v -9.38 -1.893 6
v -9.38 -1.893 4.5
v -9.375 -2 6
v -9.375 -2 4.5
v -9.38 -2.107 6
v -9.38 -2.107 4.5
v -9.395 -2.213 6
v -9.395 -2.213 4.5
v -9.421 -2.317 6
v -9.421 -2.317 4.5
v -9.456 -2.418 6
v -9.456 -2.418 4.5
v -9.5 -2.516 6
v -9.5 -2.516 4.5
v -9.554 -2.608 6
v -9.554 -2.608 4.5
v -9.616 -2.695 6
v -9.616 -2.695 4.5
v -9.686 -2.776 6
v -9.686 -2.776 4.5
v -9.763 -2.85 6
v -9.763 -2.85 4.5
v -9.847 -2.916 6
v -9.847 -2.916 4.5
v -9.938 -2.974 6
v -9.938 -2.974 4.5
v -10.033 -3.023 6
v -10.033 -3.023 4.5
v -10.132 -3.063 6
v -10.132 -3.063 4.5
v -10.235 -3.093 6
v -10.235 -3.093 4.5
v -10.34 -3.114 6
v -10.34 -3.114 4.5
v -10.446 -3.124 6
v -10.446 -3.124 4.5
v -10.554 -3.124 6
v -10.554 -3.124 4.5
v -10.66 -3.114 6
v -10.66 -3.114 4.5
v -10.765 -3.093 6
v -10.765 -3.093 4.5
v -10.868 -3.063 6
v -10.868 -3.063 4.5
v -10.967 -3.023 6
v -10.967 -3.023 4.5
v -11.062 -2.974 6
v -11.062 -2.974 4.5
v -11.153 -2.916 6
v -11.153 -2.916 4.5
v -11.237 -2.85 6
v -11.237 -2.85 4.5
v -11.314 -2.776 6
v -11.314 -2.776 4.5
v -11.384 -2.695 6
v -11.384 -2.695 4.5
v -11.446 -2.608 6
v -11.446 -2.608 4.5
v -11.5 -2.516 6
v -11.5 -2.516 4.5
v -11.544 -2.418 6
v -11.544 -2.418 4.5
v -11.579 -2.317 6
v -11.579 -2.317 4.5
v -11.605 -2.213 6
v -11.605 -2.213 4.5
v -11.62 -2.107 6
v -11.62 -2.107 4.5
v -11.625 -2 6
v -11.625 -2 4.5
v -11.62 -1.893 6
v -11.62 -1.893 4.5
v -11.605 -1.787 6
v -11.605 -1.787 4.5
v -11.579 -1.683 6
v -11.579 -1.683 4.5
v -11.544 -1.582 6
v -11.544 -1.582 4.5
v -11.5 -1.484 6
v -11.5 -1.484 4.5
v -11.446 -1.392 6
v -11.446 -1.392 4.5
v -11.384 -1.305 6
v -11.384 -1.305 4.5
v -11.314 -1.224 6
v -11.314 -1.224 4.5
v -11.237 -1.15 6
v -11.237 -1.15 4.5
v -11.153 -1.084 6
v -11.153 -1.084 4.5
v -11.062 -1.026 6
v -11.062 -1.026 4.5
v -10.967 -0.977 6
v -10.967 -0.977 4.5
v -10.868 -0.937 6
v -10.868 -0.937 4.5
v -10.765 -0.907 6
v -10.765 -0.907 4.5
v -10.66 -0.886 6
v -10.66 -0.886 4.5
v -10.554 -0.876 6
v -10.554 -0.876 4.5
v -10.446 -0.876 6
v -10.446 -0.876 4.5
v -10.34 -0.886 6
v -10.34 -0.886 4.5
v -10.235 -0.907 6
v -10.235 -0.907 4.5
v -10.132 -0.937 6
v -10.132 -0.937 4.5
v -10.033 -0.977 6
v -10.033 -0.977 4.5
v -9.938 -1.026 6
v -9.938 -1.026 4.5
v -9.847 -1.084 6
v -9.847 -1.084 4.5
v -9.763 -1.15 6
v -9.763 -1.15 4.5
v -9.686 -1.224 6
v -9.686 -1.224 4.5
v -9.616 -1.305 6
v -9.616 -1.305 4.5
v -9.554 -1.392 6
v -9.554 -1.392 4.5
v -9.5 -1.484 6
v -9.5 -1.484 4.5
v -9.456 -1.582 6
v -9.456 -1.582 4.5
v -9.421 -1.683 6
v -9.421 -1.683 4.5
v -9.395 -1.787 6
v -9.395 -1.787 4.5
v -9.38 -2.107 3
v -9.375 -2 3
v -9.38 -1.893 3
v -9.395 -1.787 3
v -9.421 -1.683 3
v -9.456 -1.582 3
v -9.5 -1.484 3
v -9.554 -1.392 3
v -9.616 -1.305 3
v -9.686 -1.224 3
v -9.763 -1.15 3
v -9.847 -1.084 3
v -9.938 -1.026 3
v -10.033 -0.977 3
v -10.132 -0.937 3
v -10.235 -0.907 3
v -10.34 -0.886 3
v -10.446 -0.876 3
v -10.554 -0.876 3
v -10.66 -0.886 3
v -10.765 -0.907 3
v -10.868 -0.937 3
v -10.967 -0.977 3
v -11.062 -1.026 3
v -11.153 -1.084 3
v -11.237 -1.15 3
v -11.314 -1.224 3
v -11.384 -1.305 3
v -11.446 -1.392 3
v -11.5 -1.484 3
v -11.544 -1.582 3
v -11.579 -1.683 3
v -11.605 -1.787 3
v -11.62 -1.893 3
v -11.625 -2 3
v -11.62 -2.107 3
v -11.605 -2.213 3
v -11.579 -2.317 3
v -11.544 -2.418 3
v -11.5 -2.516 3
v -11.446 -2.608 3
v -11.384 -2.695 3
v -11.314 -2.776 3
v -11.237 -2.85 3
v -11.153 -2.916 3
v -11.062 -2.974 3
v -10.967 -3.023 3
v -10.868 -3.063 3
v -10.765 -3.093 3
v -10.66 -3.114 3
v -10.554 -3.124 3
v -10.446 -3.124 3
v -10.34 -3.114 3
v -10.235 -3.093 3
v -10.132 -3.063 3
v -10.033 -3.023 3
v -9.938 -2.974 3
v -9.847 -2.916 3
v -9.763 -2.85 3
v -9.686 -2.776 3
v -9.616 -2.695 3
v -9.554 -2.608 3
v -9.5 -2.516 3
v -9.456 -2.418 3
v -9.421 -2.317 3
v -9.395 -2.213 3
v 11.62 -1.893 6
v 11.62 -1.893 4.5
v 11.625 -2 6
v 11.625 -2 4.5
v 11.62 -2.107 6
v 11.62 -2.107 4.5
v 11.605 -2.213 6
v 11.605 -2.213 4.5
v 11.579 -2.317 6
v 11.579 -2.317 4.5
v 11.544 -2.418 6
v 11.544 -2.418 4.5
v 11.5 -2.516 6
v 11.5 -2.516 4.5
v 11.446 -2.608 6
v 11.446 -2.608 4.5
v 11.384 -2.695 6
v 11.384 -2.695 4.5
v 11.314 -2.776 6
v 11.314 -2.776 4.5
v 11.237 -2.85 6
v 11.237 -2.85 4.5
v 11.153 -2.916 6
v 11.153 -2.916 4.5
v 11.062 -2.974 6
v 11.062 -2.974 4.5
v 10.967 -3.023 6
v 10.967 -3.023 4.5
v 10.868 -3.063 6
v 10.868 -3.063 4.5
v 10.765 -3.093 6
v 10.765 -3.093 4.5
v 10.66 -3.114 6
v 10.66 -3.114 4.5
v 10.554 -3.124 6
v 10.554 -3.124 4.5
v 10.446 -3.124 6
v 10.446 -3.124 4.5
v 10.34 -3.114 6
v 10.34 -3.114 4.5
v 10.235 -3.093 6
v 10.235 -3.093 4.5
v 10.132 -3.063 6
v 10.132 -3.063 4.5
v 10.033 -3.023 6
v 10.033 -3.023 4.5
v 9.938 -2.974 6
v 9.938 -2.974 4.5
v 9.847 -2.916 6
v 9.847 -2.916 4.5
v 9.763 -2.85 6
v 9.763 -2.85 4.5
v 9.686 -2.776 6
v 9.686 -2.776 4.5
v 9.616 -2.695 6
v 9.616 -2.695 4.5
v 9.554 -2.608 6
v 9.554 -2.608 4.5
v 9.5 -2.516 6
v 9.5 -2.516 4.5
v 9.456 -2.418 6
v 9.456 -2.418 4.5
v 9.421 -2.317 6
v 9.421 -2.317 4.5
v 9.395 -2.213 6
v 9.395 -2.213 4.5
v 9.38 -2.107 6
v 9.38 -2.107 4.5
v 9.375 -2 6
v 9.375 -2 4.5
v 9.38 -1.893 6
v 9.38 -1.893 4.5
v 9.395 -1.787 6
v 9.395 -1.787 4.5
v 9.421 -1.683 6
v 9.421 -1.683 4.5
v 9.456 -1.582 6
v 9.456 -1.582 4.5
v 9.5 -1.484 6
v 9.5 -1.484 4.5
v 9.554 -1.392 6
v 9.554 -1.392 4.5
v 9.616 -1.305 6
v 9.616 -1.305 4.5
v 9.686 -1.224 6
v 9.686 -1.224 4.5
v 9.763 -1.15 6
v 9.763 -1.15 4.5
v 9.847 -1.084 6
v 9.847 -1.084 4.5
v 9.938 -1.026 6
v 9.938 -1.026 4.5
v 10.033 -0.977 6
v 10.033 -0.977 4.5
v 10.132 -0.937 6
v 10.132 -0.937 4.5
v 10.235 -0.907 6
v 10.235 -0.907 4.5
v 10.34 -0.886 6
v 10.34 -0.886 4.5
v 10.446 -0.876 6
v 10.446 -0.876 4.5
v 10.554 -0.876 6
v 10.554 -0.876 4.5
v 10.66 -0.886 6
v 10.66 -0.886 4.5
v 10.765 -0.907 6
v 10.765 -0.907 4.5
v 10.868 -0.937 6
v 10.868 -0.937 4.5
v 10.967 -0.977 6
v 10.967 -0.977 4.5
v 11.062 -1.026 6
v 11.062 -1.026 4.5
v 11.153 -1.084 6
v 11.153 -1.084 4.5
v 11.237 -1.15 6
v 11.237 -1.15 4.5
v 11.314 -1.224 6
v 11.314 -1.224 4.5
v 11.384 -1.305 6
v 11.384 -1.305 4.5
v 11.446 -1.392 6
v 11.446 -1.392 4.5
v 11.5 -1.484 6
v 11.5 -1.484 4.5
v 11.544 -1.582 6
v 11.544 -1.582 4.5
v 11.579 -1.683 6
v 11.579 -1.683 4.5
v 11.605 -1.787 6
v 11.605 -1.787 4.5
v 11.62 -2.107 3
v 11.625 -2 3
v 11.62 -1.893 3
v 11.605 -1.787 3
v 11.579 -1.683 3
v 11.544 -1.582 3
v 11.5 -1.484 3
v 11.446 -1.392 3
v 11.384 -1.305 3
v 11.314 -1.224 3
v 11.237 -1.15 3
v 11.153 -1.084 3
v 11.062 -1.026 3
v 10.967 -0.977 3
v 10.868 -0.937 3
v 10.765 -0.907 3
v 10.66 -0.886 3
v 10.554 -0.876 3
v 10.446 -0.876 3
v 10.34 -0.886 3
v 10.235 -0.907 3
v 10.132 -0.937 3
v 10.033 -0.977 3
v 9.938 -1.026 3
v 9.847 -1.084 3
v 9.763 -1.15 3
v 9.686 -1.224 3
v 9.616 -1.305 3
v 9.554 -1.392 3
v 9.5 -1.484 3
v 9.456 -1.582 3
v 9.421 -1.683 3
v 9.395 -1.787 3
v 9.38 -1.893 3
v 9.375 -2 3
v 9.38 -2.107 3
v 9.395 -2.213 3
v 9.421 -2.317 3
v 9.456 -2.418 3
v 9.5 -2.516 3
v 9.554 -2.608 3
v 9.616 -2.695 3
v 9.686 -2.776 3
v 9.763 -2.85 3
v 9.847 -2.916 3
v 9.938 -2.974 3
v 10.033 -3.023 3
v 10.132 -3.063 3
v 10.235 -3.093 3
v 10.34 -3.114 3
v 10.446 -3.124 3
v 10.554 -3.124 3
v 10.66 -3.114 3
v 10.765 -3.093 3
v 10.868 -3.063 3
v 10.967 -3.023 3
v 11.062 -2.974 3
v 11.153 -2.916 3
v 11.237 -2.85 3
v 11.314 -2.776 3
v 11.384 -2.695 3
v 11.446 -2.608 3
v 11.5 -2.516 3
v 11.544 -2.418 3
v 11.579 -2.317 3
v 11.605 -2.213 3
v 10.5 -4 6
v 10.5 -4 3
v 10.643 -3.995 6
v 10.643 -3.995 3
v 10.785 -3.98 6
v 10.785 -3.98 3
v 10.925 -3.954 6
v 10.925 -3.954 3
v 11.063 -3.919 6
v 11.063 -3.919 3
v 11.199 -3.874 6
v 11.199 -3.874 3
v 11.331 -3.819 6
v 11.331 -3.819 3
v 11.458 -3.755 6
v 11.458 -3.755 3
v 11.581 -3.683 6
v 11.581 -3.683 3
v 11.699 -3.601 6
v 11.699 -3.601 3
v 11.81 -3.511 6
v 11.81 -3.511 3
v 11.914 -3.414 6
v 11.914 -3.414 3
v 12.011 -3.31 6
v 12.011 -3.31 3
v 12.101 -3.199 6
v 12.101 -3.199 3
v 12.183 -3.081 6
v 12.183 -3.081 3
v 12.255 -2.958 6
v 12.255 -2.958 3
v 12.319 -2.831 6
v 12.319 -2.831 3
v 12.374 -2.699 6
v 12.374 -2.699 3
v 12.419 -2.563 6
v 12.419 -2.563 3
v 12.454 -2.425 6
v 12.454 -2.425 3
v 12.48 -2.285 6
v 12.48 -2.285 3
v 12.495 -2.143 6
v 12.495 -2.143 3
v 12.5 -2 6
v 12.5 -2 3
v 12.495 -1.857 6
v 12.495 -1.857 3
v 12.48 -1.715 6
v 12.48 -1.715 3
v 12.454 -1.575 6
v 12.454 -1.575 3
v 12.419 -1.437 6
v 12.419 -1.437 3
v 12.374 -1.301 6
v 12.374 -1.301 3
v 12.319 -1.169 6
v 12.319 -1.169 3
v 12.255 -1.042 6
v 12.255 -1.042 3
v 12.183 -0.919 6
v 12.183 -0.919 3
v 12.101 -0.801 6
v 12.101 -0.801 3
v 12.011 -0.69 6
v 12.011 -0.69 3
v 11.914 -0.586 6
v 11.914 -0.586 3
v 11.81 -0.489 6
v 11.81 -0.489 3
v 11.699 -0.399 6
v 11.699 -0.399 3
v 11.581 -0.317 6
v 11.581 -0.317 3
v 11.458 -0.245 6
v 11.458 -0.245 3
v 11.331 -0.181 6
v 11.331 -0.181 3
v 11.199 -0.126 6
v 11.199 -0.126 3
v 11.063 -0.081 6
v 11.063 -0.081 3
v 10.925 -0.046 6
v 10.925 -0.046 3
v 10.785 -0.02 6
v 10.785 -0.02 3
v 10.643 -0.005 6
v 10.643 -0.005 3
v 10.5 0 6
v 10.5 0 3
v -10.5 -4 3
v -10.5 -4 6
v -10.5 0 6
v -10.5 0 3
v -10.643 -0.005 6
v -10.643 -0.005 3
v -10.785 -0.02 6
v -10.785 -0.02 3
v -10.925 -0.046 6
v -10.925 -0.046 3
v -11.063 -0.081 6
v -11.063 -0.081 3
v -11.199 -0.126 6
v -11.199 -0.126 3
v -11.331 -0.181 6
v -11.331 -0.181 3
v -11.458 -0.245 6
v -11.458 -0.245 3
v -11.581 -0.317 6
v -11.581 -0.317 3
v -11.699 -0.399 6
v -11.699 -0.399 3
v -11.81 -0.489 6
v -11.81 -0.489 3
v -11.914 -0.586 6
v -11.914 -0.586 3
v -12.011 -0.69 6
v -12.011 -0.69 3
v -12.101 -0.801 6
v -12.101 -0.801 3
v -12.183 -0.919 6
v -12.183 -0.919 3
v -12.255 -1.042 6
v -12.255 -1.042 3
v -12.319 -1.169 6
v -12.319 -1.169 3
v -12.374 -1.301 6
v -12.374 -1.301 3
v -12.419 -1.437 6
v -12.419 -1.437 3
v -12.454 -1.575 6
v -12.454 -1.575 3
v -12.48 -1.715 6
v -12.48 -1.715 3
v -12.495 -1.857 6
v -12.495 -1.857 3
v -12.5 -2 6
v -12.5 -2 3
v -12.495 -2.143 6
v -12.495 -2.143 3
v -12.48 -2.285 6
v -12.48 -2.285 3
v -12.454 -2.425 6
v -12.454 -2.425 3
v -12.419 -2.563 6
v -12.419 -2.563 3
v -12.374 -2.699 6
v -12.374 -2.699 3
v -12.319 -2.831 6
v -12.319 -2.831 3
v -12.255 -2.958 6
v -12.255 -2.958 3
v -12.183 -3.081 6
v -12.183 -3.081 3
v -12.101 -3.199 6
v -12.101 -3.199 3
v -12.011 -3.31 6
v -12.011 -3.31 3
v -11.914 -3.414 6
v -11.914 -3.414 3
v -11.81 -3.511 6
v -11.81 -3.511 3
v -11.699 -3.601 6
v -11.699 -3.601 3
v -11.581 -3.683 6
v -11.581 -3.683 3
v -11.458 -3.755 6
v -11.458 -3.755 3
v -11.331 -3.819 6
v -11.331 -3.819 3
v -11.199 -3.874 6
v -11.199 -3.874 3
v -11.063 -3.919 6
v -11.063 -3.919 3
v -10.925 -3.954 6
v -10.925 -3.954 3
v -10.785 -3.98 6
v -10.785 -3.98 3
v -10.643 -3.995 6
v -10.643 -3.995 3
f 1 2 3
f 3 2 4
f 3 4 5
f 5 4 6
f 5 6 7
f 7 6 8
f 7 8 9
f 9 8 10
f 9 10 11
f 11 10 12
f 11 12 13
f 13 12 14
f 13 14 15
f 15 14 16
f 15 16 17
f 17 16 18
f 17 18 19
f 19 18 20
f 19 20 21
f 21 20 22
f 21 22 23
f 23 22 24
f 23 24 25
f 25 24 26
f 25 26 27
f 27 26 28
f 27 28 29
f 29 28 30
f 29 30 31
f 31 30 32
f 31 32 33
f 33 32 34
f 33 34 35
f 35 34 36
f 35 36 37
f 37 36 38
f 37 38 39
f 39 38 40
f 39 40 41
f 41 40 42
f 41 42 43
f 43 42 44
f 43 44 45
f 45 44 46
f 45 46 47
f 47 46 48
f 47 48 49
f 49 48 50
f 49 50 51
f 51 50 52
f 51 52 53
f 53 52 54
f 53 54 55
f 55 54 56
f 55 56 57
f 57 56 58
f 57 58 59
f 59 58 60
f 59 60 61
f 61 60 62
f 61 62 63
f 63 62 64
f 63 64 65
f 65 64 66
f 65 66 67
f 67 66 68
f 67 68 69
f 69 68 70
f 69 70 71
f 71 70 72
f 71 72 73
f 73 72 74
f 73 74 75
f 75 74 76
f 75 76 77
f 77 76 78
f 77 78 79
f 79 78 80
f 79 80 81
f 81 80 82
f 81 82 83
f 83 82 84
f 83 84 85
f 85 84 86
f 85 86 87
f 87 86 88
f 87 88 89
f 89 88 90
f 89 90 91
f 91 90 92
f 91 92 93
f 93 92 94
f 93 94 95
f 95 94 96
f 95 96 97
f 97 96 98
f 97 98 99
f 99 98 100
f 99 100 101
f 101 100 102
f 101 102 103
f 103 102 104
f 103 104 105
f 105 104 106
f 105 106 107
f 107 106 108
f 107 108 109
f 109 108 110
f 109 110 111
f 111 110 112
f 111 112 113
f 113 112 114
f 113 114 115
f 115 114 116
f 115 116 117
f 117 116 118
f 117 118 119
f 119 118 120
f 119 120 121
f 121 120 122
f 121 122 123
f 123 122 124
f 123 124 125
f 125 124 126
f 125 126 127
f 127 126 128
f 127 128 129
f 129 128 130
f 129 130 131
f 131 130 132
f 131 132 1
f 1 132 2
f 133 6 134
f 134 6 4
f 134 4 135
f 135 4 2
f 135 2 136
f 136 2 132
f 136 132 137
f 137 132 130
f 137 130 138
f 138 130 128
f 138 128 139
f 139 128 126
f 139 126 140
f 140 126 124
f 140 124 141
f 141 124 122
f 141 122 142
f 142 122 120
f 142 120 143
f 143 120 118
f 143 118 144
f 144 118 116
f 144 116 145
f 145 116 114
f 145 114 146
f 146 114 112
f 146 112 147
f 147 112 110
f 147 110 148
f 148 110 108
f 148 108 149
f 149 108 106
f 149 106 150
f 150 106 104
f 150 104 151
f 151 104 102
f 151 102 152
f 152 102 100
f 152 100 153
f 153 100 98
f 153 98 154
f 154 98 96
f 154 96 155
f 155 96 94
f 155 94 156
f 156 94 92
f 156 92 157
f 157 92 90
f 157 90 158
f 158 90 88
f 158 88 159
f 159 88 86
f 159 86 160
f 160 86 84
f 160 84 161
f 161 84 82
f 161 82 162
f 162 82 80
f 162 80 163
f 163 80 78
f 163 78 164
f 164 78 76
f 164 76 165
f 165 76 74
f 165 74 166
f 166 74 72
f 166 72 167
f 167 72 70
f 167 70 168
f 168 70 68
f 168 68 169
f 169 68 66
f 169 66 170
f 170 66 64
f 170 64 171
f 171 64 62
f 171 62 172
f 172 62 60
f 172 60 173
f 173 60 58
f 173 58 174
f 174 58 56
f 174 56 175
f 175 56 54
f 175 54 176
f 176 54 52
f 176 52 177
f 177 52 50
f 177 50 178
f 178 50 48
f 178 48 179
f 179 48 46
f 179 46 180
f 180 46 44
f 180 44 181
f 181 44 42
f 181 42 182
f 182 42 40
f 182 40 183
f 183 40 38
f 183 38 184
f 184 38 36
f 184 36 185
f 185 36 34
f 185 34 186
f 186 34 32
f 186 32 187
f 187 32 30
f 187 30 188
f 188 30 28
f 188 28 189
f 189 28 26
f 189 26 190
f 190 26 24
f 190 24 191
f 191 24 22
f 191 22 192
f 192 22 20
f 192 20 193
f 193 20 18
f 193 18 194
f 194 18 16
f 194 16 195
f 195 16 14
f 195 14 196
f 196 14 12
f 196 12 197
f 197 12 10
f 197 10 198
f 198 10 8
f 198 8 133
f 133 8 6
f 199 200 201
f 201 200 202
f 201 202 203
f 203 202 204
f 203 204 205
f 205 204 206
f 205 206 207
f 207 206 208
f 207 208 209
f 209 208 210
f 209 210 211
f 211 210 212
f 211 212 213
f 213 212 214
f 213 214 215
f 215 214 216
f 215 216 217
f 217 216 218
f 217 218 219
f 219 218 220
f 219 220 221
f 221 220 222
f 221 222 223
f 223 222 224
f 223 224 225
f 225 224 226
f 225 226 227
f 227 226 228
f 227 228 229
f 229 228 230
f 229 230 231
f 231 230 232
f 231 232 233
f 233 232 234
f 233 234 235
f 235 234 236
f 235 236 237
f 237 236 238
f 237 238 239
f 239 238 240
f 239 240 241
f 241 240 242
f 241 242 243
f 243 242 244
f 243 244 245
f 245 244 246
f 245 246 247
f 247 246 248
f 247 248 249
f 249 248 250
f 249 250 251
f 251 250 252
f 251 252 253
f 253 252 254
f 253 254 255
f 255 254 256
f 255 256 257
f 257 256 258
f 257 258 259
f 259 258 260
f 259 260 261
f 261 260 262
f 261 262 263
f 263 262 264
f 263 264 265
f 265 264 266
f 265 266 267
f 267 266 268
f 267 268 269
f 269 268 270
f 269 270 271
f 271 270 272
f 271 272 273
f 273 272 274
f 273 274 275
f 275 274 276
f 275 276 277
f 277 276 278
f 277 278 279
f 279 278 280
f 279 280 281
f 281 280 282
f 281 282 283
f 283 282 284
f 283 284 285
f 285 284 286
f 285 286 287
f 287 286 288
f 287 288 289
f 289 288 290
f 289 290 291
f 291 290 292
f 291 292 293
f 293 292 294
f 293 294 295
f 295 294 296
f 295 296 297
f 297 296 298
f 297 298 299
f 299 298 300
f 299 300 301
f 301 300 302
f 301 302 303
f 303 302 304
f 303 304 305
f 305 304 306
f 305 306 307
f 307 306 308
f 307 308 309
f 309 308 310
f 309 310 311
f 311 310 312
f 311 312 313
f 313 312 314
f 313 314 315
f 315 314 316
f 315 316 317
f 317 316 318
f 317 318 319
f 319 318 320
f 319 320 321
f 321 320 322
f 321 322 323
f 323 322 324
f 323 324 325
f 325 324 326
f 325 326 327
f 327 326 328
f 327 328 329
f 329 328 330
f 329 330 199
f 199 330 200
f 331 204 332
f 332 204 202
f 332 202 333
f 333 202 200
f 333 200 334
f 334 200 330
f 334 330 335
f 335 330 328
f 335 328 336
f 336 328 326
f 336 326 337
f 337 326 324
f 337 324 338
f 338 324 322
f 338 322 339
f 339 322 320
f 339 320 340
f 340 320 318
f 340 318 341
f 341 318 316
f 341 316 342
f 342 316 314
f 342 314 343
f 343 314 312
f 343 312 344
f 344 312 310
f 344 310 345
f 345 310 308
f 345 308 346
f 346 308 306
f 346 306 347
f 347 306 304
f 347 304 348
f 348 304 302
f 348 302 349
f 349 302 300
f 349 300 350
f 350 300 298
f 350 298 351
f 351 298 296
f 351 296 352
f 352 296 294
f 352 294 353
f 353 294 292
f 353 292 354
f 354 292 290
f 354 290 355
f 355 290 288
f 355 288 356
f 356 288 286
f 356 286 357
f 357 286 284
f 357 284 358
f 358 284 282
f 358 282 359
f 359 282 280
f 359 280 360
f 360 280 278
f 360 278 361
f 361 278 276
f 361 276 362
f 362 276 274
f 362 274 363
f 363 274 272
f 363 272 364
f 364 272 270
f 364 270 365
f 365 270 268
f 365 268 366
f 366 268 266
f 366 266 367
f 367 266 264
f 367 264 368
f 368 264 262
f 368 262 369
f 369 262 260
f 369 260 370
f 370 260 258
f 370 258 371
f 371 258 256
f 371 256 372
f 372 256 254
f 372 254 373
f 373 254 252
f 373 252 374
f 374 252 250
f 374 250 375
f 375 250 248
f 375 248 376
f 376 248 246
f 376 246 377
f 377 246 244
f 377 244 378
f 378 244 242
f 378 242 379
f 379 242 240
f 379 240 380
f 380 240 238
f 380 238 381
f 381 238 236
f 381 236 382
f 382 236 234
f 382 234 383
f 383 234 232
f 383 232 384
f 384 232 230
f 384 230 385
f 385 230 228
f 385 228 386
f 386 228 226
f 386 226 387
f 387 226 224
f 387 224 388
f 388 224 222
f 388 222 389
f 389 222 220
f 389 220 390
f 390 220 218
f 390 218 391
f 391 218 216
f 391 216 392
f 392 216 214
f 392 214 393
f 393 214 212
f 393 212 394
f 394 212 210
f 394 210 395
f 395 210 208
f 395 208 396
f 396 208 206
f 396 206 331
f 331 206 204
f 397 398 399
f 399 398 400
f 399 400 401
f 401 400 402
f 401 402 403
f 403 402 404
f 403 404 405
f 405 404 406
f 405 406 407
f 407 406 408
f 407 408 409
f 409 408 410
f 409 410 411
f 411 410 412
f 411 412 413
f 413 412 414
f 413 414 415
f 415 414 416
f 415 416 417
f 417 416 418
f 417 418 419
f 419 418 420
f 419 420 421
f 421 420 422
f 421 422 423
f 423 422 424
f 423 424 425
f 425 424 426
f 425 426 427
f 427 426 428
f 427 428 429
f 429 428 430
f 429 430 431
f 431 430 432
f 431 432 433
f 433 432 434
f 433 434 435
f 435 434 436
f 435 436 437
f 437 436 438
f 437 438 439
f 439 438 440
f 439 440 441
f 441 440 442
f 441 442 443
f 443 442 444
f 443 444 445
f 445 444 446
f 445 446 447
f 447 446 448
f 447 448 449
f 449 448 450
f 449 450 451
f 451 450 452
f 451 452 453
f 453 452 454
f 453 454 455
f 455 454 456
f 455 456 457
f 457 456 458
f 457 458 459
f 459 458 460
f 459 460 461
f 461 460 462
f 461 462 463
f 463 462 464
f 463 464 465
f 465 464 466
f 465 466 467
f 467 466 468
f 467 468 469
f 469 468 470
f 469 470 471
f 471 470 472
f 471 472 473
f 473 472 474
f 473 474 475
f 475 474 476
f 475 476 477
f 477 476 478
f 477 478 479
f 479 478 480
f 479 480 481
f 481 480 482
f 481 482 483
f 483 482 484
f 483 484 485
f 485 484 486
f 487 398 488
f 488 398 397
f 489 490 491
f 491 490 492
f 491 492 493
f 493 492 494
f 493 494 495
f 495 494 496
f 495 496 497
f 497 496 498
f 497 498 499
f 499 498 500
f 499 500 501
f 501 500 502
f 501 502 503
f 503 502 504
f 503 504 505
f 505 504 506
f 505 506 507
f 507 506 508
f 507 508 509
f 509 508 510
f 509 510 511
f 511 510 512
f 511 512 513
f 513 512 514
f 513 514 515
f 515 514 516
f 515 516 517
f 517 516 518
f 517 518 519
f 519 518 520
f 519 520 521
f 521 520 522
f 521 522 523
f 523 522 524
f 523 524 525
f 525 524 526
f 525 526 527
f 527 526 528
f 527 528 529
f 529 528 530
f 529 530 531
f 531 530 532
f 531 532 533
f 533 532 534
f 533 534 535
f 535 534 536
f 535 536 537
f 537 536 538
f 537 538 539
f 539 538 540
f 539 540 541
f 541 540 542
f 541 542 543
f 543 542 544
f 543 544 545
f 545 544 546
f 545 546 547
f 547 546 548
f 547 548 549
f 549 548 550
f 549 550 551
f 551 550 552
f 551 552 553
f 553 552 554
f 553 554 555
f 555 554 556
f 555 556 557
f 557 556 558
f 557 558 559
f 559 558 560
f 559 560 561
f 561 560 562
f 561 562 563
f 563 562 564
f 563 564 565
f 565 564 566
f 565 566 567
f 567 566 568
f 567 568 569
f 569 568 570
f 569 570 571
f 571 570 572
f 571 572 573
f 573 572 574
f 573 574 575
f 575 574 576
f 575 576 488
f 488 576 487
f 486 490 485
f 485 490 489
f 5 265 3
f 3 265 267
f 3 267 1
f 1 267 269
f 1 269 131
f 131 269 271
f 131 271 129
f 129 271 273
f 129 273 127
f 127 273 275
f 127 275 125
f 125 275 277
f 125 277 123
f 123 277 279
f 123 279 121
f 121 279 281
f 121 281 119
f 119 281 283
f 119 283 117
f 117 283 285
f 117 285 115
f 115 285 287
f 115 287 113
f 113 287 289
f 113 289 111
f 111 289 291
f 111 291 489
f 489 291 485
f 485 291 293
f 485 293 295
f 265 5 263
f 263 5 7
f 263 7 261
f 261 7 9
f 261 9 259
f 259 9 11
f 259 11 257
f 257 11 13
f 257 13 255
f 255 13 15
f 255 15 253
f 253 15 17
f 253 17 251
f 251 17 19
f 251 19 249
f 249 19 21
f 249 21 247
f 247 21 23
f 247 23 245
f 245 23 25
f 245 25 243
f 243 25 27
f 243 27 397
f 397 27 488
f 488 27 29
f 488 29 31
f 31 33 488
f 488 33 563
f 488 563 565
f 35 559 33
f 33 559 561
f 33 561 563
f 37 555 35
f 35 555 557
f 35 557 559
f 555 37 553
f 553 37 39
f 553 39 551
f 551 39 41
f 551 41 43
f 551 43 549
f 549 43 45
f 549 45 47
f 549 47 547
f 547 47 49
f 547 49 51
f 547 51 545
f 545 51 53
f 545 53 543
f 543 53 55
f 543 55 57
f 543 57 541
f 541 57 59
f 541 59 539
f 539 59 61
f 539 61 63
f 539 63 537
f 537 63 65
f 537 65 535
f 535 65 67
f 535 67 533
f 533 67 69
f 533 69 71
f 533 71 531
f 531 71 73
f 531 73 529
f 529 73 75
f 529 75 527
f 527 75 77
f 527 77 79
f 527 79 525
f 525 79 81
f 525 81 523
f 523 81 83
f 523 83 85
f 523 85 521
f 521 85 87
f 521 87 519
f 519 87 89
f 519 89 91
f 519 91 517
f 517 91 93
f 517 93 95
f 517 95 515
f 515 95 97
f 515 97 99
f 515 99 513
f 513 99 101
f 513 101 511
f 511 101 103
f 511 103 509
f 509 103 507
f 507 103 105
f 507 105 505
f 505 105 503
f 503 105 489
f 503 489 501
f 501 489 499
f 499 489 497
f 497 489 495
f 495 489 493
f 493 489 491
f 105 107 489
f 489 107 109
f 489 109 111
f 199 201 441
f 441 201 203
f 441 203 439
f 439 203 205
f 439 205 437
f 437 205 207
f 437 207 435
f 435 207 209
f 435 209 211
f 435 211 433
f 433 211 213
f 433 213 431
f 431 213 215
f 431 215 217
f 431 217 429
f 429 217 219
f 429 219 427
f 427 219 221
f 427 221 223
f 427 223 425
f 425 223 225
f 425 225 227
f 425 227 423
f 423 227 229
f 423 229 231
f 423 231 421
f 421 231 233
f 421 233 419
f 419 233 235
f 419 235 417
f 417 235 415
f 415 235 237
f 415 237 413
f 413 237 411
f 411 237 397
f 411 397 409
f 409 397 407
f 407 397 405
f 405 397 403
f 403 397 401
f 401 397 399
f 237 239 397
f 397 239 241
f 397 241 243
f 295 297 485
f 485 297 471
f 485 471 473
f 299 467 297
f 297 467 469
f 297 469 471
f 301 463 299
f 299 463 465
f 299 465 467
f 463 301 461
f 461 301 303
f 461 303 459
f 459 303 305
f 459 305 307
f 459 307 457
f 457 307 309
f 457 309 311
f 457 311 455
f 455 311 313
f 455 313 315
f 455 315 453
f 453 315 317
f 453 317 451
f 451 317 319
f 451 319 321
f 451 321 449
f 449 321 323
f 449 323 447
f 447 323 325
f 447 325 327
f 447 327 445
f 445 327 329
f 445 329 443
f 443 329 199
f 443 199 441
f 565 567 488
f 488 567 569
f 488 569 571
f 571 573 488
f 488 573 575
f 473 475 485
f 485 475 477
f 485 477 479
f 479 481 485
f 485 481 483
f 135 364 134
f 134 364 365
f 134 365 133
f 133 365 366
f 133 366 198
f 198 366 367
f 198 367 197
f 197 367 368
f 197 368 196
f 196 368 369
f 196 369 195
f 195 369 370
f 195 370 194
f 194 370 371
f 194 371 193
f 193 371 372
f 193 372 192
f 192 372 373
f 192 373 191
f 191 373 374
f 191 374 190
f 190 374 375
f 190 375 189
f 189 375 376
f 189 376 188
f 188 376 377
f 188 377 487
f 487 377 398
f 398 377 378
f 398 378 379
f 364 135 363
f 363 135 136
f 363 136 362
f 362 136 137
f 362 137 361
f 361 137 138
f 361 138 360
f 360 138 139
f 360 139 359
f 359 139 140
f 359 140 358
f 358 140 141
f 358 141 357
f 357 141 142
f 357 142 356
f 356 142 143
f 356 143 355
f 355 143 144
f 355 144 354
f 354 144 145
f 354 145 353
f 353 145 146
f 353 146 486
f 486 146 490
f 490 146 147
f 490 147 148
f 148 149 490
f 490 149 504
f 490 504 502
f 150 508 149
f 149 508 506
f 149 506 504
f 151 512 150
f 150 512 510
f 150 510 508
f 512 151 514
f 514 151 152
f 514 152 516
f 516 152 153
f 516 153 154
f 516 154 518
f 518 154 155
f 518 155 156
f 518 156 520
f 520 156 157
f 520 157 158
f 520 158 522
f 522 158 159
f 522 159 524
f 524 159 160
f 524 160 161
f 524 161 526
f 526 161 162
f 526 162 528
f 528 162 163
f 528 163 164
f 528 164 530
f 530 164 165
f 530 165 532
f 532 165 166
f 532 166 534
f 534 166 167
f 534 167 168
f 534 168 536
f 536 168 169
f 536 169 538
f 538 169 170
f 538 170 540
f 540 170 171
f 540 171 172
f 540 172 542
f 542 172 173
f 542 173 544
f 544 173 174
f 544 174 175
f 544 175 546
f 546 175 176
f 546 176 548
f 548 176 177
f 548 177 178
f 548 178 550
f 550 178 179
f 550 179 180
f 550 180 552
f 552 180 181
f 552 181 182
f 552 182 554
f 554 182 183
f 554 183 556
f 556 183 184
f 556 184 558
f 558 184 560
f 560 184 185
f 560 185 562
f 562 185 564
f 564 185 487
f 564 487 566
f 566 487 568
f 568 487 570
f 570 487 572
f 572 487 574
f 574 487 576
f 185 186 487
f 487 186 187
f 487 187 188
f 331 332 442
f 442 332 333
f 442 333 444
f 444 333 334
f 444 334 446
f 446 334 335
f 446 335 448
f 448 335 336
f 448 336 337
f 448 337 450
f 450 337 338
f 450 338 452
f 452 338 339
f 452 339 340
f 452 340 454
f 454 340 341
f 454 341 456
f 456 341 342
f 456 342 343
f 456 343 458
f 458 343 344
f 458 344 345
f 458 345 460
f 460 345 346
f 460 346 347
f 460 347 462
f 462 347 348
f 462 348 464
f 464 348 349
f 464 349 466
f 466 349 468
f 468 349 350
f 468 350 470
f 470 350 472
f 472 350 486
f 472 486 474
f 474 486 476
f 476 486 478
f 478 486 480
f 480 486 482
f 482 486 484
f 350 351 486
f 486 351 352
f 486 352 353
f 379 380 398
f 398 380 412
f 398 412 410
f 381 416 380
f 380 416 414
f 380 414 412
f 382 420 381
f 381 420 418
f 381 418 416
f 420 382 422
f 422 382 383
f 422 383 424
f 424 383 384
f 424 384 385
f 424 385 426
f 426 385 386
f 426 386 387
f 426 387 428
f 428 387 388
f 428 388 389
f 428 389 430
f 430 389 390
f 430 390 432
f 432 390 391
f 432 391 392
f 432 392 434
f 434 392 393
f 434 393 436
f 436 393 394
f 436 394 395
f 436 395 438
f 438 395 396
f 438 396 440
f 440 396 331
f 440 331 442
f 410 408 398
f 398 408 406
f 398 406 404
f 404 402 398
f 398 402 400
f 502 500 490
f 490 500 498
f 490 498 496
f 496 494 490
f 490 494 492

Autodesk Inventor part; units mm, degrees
ref_plane "YZ Plane" through (0, 0, 0) normal (1, 0, 0) x (0, 1, 0)
ref_plane "XZ Plane" through (0, 0, 0) normal (0, 1, 0) x (-1, 0, 0)
ref_plane "XY Plane" through (0, 0, 0) normal (0, 0, 1) x (1, 0, 0)
sketch "Sketch1" plane through (0, 0, 0) normal (0, 0, 1) x (1, 0, 0)
  circle A0 centre (21, 0) radius 2.25 projected
  circle A1 centre (-21, 0) radius 2.25 projected
  line L0 (21, 0) -> (-21, 0) construction
  line L1 (21, 4) -> (-21, 4)
  line L2 (-21, -4) -> (21, -4)
  arc A2 (21, -4) -> (21, 4) centre (21, 0) ccw
  arc A3 (-21, 4) -> (-21, -4) centre (-21, 0) ccw
  point P0 (0, 0)
  point P1 (0, 0)
  dimension "d0" = 8
extrude "Extrusion1" add sketch "Sketch1" along normal blind 6
scale "Scale1" factors (0.5, 0.5, 0.5) then translate (0, -2, 3) bodies 1
properties part number "MassiveToe2"
